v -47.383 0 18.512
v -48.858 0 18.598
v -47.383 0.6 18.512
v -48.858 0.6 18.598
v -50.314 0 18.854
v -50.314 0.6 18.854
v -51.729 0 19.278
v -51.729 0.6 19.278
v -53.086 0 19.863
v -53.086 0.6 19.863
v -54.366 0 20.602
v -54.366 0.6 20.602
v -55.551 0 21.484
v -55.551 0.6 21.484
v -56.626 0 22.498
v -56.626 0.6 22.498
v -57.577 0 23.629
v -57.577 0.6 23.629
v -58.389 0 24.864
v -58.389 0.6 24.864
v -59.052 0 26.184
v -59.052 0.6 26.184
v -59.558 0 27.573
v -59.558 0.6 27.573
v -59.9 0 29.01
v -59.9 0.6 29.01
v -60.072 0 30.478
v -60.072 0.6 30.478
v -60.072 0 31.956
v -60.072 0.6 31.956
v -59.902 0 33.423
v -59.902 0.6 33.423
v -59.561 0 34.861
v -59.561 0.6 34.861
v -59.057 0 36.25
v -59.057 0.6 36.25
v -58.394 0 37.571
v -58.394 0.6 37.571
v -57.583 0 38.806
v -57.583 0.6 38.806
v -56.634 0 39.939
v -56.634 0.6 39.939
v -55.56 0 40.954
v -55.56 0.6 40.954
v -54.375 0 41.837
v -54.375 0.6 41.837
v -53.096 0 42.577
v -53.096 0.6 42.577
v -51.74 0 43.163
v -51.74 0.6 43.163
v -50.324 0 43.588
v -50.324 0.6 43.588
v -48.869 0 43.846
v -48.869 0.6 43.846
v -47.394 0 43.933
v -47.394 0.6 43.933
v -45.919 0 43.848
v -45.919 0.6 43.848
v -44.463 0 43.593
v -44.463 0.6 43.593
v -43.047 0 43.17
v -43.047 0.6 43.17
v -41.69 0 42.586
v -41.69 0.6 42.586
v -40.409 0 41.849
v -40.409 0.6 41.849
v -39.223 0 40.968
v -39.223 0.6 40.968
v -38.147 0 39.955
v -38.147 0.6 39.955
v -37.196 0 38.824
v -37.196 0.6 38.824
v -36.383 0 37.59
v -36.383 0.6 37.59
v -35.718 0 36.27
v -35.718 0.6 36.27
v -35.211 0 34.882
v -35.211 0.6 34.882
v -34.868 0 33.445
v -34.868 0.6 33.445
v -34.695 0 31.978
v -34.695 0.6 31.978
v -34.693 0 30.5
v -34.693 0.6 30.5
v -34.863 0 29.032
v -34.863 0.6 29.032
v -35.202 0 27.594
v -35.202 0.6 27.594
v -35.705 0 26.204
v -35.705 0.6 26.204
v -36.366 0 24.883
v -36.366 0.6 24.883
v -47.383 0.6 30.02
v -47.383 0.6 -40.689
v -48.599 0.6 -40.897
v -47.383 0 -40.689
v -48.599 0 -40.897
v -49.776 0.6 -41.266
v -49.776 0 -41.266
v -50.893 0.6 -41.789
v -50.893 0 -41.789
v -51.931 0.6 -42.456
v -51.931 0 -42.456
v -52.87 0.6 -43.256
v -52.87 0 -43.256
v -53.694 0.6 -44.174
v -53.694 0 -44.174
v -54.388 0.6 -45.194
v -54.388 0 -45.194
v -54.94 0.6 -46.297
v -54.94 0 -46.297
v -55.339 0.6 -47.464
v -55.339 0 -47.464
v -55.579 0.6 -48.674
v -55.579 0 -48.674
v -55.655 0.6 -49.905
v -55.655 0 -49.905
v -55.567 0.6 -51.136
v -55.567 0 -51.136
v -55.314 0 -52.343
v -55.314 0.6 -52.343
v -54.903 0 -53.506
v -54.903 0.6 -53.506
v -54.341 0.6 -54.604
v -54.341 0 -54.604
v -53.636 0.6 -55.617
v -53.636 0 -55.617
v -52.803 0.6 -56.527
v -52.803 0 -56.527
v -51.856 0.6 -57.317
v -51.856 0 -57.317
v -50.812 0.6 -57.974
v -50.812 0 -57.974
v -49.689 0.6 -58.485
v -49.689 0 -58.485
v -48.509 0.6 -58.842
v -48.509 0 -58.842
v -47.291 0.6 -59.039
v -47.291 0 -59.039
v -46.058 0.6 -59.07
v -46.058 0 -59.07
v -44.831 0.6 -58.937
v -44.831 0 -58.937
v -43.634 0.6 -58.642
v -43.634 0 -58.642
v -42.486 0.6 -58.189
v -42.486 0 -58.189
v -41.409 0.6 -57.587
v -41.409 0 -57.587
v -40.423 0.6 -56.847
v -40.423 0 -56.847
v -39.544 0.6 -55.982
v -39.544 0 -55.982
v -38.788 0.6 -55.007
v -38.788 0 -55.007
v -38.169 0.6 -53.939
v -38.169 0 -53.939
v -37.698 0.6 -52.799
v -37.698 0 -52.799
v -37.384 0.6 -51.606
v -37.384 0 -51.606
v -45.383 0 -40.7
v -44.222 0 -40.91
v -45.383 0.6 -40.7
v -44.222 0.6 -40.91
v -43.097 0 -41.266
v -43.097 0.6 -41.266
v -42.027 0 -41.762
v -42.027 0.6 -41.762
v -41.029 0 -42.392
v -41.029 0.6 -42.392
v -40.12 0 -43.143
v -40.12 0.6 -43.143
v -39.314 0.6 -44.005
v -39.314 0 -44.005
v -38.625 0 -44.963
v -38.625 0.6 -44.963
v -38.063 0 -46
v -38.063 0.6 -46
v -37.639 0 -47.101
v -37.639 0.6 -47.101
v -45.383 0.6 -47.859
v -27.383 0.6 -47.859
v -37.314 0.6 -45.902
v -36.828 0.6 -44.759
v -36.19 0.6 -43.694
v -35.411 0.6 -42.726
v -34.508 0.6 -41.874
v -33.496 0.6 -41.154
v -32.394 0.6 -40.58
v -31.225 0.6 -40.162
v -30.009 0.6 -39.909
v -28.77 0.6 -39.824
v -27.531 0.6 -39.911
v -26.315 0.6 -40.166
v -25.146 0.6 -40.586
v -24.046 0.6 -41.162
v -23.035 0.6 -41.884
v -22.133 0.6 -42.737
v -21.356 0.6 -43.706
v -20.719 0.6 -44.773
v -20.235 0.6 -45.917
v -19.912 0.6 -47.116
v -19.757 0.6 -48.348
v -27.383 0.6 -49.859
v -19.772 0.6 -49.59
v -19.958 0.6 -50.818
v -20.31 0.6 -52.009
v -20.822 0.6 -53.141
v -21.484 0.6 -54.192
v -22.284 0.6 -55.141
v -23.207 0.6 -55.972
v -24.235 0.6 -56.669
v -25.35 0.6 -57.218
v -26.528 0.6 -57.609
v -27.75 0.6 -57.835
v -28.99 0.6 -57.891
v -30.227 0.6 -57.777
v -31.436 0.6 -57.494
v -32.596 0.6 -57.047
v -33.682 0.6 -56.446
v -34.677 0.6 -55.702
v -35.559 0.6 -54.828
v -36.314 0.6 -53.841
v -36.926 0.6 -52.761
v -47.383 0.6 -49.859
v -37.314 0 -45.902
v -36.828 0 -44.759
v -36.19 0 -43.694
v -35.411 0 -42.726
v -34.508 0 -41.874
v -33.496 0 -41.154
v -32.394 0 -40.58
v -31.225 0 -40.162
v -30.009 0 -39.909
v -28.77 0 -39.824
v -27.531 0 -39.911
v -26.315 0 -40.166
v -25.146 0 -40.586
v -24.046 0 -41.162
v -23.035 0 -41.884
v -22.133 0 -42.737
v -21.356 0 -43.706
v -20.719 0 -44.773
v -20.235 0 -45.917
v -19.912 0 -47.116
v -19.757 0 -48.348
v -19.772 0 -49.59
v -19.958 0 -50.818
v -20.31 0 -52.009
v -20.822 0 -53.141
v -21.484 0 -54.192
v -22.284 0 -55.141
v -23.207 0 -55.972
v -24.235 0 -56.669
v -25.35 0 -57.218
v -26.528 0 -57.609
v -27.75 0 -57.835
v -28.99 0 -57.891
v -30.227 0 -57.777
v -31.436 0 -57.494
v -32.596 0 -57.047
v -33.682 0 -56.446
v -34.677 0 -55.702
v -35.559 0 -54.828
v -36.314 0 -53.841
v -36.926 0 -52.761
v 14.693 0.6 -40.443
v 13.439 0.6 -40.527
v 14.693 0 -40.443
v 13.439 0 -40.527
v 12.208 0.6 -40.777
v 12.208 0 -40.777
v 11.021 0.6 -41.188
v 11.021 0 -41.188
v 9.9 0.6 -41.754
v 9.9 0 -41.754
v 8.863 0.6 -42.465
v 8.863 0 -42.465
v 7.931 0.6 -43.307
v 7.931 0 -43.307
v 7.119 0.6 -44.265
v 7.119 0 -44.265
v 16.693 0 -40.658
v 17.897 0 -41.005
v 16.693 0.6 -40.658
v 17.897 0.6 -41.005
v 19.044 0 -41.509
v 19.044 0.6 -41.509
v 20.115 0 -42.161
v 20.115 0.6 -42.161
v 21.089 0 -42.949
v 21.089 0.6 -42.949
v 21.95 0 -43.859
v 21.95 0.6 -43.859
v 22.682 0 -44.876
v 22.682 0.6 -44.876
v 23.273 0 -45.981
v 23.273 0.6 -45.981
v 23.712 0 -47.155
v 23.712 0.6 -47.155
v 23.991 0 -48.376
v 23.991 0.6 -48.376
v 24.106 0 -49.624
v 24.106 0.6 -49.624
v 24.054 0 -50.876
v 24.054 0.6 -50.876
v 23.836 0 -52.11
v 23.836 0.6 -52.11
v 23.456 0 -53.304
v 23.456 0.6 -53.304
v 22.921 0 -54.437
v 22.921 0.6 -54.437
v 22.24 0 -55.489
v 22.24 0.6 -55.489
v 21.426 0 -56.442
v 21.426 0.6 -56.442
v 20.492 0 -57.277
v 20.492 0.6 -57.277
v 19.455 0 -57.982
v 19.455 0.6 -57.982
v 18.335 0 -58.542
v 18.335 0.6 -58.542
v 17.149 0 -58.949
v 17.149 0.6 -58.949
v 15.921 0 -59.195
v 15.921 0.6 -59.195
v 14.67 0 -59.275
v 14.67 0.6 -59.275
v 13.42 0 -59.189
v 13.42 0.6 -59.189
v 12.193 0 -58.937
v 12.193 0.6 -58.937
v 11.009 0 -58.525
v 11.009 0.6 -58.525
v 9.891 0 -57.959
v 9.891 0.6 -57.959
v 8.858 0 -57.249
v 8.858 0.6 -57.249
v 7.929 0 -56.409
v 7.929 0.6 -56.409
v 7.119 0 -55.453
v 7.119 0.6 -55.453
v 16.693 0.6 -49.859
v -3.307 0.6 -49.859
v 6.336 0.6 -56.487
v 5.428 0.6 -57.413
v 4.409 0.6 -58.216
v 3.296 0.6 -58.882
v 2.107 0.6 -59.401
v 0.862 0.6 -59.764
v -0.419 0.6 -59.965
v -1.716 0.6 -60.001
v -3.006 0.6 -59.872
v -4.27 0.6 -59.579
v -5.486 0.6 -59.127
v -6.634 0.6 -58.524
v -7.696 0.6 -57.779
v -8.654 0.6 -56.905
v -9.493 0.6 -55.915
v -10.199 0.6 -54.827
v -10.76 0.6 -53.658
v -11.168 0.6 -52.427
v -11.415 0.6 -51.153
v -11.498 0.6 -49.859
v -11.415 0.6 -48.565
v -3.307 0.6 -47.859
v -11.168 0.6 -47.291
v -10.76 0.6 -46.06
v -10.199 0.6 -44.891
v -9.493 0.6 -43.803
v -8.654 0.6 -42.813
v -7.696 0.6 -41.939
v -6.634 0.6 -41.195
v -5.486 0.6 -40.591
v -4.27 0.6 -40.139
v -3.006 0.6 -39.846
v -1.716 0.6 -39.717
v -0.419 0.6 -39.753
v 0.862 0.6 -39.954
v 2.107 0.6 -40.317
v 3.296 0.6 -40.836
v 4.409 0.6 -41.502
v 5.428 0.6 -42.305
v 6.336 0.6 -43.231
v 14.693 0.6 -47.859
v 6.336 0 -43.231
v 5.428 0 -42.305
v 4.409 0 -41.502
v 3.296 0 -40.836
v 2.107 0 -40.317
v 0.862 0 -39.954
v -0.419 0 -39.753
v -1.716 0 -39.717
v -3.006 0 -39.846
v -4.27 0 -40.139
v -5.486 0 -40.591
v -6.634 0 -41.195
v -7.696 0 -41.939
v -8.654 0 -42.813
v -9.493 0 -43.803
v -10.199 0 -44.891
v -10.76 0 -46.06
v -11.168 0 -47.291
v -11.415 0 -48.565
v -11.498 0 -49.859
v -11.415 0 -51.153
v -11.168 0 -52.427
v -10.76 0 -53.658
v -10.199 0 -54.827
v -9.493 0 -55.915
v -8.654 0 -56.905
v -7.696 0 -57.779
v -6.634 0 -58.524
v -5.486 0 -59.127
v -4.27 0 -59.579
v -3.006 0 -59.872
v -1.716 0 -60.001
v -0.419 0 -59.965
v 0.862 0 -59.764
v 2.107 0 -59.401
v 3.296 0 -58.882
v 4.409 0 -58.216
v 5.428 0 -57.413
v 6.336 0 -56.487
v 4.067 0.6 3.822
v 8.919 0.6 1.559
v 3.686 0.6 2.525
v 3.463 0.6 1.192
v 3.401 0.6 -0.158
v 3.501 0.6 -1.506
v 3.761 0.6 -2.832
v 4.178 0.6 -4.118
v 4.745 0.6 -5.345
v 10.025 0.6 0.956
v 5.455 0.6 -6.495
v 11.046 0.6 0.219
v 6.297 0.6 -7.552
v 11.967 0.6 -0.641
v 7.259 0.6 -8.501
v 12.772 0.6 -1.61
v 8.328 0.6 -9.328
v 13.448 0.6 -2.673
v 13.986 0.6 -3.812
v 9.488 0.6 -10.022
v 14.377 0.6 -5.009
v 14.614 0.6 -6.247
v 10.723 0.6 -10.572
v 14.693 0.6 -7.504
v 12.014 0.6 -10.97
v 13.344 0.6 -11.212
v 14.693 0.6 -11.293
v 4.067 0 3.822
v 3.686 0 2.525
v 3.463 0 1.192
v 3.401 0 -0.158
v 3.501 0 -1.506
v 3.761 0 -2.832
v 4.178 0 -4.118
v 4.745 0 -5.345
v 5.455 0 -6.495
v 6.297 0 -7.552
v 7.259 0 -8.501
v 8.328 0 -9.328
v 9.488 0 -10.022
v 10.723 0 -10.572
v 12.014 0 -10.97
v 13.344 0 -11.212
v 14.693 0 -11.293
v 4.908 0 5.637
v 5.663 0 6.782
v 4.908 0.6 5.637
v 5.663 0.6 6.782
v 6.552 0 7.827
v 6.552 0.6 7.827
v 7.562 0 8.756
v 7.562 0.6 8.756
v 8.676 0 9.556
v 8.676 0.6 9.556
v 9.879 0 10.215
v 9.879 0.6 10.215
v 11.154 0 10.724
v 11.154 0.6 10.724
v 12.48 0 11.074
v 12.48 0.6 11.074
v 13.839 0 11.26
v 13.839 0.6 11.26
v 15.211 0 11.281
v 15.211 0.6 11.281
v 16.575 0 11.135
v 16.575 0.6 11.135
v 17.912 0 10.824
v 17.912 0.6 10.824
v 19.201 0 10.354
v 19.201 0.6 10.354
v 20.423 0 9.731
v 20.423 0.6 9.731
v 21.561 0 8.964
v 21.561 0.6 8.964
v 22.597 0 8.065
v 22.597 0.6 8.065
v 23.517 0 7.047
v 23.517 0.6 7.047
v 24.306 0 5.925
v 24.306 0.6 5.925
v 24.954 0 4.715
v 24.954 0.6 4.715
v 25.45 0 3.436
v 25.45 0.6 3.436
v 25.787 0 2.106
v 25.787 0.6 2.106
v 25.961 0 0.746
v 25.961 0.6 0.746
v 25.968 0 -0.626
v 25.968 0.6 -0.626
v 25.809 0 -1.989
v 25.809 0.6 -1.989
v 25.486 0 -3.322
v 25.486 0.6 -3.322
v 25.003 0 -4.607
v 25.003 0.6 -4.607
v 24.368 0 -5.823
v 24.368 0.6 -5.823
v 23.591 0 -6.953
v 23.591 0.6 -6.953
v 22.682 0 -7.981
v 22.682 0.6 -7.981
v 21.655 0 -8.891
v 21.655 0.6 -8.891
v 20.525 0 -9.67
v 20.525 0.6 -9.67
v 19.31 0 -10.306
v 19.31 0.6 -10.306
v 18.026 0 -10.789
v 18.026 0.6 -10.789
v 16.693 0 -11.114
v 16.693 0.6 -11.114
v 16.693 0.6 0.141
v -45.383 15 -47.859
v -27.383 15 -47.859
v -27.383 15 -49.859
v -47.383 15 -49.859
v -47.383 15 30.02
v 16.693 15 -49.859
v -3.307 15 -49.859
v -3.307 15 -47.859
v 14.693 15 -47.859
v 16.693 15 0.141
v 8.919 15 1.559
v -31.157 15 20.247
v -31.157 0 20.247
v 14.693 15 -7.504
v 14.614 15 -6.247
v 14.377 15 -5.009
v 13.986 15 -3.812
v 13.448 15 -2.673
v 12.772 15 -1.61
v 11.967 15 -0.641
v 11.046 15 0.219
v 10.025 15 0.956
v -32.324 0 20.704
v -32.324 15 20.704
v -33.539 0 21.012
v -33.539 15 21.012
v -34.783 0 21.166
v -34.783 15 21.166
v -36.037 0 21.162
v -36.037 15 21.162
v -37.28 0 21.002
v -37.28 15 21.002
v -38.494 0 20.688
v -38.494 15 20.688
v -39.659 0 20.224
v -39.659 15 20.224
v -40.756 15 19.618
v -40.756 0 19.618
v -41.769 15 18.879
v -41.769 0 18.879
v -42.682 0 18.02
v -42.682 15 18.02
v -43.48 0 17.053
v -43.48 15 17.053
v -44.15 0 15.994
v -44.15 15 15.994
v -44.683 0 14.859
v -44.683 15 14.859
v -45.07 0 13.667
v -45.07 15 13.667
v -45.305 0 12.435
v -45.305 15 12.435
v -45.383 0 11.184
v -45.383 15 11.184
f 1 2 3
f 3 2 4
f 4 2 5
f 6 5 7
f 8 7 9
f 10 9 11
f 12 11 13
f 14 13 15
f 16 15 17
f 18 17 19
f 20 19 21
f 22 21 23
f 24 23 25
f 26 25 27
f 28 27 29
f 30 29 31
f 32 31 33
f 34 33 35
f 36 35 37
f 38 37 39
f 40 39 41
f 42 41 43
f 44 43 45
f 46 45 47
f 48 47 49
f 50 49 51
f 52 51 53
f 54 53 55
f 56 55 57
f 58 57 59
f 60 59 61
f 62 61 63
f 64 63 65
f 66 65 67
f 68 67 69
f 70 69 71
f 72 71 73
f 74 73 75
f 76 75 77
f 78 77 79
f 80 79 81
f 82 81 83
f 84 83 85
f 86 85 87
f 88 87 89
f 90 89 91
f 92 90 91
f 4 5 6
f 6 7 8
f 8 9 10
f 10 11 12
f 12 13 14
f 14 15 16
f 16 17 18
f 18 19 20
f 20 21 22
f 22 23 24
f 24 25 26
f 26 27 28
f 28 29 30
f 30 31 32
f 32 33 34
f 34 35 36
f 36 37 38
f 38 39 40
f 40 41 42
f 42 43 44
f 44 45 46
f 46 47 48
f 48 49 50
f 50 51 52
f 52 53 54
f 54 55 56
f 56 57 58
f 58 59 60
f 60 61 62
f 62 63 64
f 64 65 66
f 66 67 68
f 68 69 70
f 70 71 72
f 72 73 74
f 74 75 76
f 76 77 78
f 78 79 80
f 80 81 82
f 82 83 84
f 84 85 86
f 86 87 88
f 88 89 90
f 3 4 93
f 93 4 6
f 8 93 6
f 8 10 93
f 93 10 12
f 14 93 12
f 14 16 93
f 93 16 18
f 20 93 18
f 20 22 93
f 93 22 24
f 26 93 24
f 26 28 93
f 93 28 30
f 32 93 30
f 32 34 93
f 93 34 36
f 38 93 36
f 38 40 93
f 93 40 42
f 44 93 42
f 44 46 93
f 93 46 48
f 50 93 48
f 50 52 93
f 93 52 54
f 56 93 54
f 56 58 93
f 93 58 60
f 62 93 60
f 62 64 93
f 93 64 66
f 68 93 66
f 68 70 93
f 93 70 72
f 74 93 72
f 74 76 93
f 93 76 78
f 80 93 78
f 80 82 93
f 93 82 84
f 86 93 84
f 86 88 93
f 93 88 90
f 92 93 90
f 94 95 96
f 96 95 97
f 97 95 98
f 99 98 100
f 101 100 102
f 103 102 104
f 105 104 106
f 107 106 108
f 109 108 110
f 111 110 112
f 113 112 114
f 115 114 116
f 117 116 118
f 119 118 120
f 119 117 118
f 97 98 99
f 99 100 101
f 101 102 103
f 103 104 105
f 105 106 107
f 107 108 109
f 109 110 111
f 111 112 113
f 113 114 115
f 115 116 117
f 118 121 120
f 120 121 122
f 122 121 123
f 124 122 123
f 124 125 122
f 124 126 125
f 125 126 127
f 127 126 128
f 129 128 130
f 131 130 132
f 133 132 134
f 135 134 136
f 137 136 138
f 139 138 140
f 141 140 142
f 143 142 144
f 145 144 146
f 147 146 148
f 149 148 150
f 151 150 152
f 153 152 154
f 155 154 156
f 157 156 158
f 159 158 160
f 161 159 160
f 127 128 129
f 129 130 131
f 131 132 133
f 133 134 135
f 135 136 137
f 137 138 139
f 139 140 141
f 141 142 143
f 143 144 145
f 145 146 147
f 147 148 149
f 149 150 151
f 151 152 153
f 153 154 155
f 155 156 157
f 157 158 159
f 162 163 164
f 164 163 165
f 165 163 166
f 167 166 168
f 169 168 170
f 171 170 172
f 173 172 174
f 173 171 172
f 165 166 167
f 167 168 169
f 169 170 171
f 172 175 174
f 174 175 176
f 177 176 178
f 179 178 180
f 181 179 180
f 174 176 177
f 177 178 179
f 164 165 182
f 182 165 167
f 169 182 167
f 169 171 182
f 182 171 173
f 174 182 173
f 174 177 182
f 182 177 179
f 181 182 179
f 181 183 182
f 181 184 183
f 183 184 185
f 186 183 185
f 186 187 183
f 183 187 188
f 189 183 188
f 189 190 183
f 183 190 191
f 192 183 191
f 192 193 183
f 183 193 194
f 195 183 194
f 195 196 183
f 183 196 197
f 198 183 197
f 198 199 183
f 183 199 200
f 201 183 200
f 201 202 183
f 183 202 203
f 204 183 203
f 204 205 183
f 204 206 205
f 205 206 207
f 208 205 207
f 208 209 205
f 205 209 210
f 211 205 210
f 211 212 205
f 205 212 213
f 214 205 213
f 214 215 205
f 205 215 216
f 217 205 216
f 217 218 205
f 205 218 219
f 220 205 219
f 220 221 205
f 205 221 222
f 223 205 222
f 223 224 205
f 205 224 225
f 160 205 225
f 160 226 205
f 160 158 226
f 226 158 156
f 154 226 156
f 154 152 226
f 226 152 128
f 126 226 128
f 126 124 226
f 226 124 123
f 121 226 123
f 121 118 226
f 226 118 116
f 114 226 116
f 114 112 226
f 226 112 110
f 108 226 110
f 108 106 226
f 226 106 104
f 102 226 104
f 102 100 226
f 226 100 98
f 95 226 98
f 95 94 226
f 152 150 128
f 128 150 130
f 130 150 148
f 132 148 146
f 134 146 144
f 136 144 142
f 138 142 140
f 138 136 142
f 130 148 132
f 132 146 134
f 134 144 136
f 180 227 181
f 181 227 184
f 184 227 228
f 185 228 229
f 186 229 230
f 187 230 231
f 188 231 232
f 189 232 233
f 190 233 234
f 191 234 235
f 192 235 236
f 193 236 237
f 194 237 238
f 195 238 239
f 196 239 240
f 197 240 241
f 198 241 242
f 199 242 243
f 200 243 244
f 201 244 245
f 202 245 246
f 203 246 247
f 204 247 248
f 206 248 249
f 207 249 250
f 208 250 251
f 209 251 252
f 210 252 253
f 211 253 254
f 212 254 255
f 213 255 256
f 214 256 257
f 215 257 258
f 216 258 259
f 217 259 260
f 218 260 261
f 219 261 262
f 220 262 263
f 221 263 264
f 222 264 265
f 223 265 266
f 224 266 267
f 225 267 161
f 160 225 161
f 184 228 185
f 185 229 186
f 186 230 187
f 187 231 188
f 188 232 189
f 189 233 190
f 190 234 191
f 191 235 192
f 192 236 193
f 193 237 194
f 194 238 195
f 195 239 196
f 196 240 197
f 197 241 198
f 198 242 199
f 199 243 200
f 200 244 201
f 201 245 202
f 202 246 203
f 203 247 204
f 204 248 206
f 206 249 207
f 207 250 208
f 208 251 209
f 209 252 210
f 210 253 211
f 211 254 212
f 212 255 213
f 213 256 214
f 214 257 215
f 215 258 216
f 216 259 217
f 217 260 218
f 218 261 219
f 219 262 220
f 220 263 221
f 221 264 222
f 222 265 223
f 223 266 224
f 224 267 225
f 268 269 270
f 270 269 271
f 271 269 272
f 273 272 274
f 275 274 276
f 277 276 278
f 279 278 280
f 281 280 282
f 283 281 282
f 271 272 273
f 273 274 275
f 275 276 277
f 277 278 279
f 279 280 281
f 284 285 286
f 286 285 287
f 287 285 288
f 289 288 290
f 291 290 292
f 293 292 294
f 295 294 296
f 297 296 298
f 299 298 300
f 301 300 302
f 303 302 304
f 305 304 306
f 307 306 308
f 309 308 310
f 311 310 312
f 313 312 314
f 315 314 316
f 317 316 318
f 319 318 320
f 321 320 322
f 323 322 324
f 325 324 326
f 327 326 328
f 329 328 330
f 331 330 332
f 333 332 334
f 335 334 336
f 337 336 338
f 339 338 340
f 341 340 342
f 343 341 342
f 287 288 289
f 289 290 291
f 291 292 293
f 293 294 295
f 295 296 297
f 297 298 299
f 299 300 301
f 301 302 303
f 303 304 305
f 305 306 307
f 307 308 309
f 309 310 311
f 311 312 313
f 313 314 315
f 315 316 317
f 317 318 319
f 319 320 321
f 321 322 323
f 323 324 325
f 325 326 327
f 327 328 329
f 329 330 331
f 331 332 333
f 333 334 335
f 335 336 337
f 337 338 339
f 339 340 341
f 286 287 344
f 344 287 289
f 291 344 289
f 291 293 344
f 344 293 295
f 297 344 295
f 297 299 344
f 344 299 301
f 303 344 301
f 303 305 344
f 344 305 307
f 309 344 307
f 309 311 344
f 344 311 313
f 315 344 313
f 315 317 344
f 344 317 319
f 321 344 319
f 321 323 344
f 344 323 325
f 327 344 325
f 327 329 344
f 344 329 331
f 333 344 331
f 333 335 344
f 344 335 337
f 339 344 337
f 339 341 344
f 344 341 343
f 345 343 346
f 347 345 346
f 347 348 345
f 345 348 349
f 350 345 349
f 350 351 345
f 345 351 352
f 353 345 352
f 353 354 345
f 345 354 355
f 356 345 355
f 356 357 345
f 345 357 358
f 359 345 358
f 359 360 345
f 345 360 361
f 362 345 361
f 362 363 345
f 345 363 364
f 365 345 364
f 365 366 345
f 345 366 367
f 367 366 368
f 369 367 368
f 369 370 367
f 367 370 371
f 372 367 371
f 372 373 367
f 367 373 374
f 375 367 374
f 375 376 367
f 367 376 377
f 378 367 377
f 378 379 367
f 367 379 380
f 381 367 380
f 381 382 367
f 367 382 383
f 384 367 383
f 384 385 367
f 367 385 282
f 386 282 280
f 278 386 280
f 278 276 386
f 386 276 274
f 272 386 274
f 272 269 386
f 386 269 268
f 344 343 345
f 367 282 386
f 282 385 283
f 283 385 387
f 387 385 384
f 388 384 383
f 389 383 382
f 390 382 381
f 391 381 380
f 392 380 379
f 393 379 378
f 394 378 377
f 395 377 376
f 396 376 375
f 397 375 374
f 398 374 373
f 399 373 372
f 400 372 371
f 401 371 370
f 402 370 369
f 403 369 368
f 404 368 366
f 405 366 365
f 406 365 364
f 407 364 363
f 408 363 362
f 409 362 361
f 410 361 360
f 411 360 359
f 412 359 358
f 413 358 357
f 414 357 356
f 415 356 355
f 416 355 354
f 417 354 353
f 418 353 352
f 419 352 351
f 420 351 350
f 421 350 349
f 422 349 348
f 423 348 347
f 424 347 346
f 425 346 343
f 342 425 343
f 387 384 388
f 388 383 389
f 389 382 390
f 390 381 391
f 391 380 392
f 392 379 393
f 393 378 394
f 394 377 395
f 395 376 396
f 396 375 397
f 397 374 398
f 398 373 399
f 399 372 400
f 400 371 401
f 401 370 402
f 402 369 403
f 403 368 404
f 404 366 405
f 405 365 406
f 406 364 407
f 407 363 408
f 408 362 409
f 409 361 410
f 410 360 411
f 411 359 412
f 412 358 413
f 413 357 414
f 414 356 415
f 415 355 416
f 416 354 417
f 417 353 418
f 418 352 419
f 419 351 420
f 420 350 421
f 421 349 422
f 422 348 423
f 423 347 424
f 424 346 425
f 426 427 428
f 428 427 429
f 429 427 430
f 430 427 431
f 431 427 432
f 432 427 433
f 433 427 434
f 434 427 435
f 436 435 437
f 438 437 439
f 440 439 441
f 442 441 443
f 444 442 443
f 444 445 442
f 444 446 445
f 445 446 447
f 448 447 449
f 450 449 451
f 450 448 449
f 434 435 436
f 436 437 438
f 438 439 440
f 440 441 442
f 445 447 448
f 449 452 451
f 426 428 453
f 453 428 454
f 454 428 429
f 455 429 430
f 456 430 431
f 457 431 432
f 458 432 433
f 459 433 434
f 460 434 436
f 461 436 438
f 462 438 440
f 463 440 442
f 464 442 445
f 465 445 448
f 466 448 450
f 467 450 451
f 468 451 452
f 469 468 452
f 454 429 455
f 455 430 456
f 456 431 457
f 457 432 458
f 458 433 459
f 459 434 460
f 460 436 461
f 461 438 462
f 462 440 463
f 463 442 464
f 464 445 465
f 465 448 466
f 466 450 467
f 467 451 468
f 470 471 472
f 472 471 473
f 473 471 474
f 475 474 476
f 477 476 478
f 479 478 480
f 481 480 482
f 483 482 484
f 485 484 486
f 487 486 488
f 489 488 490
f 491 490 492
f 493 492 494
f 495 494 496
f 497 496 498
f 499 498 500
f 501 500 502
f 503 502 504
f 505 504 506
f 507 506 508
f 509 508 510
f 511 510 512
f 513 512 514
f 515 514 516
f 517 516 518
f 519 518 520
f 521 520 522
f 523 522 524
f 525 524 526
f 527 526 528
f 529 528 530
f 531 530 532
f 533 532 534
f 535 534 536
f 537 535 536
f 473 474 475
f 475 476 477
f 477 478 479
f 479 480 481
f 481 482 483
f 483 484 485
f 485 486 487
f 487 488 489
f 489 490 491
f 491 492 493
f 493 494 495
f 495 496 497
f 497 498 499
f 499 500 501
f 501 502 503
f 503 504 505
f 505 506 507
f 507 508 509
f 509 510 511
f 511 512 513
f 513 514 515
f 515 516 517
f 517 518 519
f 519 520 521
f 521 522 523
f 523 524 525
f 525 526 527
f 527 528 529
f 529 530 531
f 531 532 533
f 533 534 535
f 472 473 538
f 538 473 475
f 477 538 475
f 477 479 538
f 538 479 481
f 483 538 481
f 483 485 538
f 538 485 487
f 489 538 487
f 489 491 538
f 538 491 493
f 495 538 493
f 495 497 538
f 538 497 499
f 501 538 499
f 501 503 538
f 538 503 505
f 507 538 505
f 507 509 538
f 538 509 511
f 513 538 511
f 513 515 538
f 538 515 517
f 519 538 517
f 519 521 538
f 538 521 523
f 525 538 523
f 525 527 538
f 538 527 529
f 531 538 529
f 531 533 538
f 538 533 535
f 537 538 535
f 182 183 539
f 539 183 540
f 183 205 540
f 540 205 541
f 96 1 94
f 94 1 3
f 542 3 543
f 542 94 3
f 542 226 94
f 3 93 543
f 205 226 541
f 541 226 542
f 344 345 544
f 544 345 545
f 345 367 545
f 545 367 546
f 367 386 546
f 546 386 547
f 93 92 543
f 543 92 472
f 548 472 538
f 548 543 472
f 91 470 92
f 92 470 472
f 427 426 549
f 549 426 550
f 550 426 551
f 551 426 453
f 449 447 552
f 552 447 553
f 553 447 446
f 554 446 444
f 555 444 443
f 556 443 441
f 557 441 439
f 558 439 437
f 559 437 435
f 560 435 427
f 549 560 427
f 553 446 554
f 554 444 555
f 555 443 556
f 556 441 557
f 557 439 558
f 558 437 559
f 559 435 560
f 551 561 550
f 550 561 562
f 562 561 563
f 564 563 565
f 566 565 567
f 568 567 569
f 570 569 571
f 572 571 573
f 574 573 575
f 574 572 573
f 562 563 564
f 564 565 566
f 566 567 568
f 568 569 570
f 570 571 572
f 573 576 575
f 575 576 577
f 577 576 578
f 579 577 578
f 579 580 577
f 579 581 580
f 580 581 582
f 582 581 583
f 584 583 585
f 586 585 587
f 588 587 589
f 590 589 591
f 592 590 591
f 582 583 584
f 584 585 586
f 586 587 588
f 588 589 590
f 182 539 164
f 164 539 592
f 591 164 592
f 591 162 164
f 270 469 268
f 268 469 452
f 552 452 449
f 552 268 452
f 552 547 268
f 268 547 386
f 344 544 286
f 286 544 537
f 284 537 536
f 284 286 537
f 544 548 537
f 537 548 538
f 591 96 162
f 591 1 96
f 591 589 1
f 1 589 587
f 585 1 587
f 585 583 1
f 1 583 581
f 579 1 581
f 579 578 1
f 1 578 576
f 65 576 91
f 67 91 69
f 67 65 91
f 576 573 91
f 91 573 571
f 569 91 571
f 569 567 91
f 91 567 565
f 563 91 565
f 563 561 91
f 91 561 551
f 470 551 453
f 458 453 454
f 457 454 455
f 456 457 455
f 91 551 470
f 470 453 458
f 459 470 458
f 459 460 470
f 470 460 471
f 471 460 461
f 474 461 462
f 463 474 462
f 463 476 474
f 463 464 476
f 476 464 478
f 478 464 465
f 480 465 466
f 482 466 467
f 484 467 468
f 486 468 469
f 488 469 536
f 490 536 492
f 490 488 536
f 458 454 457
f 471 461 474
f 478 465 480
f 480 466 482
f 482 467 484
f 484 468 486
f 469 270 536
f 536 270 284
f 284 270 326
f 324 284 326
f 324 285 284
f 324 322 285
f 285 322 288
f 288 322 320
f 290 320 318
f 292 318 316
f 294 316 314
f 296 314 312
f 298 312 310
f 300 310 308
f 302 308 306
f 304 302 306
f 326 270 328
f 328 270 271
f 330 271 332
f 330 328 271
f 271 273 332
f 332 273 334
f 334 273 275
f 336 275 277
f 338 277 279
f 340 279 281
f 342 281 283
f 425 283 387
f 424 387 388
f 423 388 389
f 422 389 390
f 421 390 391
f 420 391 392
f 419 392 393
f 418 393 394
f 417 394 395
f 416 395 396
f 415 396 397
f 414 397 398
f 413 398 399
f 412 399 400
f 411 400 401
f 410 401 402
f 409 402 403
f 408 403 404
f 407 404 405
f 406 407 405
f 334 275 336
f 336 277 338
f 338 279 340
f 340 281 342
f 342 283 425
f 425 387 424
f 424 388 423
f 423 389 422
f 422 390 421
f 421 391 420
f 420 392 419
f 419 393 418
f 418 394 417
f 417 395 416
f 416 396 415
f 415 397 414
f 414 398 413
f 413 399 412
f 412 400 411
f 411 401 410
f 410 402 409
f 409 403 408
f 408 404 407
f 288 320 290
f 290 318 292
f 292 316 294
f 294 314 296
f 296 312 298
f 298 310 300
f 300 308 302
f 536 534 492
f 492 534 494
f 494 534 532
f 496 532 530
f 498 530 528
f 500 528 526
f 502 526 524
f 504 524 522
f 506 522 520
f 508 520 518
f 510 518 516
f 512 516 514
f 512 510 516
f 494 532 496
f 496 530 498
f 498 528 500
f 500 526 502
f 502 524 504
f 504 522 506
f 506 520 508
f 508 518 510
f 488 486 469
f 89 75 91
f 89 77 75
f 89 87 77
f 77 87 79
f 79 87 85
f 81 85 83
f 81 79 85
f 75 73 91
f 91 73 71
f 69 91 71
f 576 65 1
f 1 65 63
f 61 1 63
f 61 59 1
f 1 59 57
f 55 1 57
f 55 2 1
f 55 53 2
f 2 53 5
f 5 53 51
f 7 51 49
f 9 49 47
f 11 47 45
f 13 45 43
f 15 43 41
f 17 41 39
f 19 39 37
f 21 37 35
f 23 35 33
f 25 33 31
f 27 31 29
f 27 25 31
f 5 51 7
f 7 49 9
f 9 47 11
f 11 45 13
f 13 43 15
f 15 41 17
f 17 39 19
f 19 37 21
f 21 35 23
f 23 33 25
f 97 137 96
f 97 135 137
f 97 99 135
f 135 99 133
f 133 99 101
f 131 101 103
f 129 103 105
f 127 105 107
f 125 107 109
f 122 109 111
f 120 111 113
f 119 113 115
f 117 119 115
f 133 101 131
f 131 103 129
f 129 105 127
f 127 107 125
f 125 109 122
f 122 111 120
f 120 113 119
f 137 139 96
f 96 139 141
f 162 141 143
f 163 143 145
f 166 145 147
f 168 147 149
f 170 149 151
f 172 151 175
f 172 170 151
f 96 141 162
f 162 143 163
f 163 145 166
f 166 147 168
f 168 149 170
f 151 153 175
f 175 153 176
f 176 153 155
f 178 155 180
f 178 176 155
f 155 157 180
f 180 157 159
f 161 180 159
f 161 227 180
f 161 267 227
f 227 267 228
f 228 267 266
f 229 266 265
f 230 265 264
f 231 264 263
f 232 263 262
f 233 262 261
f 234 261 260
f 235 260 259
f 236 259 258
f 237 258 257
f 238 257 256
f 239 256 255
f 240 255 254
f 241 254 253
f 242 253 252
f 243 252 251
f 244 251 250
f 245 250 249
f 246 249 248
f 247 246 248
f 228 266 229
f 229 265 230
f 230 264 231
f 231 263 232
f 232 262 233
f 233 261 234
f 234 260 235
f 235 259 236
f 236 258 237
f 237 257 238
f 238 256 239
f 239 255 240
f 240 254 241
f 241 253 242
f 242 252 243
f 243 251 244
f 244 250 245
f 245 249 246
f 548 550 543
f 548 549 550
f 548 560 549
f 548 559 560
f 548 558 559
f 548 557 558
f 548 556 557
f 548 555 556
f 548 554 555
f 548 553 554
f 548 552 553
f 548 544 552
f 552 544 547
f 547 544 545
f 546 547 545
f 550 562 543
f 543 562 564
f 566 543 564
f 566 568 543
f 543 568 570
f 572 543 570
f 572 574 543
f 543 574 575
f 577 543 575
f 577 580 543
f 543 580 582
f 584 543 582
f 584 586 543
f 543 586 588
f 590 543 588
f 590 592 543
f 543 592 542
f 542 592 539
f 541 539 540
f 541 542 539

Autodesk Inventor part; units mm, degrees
ref_plane "YZ Plane" through (0, 0, 0) normal (1, 0, 0) x (0, 1, 0)
ref_plane "XZ Plane" through (0, 0, 0) normal (0, 1, 0) x (-1, 0, 0)
ref_plane "XY Plane" through (0, 0, 0) normal (0, 0, 1) x (1, 0, 0)
sketch "Sketch1" plane through (0, 0, 0) normal (0, 1, 0) x (-1, 0, 0)
  line L0 (-16.6929, 0.141) -> (47.3831, 30.0201)
  line L1 (-16.6929, 0.141) -> (62.5092, 0.141) construction
  line L2 (-16.6929, 0.141) -> (-16.6929, -49.859)
  line L3 (47.3831, 30.0201) -> (47.3831, -49.859)
  line L4 (-16.6929, -49.859) -> (3.3071, -49.859)
  line L5 (47.3831, -49.859) -> (27.3831, -49.859)
  line L6 (27.3831, -47.859) -> (45.3831, -47.859)
  line L7 (45.3831, -47.859) -> (45.3831, 26.8807)
  line L8 (45.3831, 26.8807) -> (-14.6929, -1.1332)
  line L9 (-14.6929, -1.1332) -> (-14.6929, -47.859)
  line L10 (-14.6929, -47.859) -> (3.3071, -47.859)
  line L11 (3.3071, -49.859) -> (3.3071, -47.859)
  line L12 (27.3831, -49.859) -> (27.3831, -47.859)
  point P0 (0, 0)
  dimension "d0" = 70.7
  dimension "d1" = 25
  dimension "d2" = 50
  dimension "d3" = 20
  dimension "d5" = 20
  dimension "d6" = 2
  dimension "d7" = 2
extrude "Extrusion1" add sketch "Sketch1" along normal blind 15
fillet "Fillet1" radius 10 2 edges at (-45.3831, 7.5, 26.8807) (14.6929, 7.5, -1.1332)
sketch "Sketch2" plane through (0, 0, 0) normal (0, -1, 0) x (1, 0, 0)
  line L0 (-47.3831, -49.859) -> (-27.3831, -49.859) projected
  line L1 (-3.3071, -49.859) -> (16.6929, -49.859) projected
  circle A0 centre (-47.3831, 31.2222) radius 12.7105
  circle A1 centre (14.6929, 0) radius 11.2925
  circle A2 centre (-46.4362, -49.859) radius 9.2192
  circle A3 centre (-28.7772, -48.859) radius 9.0347
  circle A4 centre (-1.3494, -49.859) radius 10.1488
  circle A5 centre (14.6929, -49.859) radius 9.416
  point P0 (0, 0)
extrude "Extrusion2" add sketch "Sketch2" against normal blind 0.6
properties part number "Stand"
